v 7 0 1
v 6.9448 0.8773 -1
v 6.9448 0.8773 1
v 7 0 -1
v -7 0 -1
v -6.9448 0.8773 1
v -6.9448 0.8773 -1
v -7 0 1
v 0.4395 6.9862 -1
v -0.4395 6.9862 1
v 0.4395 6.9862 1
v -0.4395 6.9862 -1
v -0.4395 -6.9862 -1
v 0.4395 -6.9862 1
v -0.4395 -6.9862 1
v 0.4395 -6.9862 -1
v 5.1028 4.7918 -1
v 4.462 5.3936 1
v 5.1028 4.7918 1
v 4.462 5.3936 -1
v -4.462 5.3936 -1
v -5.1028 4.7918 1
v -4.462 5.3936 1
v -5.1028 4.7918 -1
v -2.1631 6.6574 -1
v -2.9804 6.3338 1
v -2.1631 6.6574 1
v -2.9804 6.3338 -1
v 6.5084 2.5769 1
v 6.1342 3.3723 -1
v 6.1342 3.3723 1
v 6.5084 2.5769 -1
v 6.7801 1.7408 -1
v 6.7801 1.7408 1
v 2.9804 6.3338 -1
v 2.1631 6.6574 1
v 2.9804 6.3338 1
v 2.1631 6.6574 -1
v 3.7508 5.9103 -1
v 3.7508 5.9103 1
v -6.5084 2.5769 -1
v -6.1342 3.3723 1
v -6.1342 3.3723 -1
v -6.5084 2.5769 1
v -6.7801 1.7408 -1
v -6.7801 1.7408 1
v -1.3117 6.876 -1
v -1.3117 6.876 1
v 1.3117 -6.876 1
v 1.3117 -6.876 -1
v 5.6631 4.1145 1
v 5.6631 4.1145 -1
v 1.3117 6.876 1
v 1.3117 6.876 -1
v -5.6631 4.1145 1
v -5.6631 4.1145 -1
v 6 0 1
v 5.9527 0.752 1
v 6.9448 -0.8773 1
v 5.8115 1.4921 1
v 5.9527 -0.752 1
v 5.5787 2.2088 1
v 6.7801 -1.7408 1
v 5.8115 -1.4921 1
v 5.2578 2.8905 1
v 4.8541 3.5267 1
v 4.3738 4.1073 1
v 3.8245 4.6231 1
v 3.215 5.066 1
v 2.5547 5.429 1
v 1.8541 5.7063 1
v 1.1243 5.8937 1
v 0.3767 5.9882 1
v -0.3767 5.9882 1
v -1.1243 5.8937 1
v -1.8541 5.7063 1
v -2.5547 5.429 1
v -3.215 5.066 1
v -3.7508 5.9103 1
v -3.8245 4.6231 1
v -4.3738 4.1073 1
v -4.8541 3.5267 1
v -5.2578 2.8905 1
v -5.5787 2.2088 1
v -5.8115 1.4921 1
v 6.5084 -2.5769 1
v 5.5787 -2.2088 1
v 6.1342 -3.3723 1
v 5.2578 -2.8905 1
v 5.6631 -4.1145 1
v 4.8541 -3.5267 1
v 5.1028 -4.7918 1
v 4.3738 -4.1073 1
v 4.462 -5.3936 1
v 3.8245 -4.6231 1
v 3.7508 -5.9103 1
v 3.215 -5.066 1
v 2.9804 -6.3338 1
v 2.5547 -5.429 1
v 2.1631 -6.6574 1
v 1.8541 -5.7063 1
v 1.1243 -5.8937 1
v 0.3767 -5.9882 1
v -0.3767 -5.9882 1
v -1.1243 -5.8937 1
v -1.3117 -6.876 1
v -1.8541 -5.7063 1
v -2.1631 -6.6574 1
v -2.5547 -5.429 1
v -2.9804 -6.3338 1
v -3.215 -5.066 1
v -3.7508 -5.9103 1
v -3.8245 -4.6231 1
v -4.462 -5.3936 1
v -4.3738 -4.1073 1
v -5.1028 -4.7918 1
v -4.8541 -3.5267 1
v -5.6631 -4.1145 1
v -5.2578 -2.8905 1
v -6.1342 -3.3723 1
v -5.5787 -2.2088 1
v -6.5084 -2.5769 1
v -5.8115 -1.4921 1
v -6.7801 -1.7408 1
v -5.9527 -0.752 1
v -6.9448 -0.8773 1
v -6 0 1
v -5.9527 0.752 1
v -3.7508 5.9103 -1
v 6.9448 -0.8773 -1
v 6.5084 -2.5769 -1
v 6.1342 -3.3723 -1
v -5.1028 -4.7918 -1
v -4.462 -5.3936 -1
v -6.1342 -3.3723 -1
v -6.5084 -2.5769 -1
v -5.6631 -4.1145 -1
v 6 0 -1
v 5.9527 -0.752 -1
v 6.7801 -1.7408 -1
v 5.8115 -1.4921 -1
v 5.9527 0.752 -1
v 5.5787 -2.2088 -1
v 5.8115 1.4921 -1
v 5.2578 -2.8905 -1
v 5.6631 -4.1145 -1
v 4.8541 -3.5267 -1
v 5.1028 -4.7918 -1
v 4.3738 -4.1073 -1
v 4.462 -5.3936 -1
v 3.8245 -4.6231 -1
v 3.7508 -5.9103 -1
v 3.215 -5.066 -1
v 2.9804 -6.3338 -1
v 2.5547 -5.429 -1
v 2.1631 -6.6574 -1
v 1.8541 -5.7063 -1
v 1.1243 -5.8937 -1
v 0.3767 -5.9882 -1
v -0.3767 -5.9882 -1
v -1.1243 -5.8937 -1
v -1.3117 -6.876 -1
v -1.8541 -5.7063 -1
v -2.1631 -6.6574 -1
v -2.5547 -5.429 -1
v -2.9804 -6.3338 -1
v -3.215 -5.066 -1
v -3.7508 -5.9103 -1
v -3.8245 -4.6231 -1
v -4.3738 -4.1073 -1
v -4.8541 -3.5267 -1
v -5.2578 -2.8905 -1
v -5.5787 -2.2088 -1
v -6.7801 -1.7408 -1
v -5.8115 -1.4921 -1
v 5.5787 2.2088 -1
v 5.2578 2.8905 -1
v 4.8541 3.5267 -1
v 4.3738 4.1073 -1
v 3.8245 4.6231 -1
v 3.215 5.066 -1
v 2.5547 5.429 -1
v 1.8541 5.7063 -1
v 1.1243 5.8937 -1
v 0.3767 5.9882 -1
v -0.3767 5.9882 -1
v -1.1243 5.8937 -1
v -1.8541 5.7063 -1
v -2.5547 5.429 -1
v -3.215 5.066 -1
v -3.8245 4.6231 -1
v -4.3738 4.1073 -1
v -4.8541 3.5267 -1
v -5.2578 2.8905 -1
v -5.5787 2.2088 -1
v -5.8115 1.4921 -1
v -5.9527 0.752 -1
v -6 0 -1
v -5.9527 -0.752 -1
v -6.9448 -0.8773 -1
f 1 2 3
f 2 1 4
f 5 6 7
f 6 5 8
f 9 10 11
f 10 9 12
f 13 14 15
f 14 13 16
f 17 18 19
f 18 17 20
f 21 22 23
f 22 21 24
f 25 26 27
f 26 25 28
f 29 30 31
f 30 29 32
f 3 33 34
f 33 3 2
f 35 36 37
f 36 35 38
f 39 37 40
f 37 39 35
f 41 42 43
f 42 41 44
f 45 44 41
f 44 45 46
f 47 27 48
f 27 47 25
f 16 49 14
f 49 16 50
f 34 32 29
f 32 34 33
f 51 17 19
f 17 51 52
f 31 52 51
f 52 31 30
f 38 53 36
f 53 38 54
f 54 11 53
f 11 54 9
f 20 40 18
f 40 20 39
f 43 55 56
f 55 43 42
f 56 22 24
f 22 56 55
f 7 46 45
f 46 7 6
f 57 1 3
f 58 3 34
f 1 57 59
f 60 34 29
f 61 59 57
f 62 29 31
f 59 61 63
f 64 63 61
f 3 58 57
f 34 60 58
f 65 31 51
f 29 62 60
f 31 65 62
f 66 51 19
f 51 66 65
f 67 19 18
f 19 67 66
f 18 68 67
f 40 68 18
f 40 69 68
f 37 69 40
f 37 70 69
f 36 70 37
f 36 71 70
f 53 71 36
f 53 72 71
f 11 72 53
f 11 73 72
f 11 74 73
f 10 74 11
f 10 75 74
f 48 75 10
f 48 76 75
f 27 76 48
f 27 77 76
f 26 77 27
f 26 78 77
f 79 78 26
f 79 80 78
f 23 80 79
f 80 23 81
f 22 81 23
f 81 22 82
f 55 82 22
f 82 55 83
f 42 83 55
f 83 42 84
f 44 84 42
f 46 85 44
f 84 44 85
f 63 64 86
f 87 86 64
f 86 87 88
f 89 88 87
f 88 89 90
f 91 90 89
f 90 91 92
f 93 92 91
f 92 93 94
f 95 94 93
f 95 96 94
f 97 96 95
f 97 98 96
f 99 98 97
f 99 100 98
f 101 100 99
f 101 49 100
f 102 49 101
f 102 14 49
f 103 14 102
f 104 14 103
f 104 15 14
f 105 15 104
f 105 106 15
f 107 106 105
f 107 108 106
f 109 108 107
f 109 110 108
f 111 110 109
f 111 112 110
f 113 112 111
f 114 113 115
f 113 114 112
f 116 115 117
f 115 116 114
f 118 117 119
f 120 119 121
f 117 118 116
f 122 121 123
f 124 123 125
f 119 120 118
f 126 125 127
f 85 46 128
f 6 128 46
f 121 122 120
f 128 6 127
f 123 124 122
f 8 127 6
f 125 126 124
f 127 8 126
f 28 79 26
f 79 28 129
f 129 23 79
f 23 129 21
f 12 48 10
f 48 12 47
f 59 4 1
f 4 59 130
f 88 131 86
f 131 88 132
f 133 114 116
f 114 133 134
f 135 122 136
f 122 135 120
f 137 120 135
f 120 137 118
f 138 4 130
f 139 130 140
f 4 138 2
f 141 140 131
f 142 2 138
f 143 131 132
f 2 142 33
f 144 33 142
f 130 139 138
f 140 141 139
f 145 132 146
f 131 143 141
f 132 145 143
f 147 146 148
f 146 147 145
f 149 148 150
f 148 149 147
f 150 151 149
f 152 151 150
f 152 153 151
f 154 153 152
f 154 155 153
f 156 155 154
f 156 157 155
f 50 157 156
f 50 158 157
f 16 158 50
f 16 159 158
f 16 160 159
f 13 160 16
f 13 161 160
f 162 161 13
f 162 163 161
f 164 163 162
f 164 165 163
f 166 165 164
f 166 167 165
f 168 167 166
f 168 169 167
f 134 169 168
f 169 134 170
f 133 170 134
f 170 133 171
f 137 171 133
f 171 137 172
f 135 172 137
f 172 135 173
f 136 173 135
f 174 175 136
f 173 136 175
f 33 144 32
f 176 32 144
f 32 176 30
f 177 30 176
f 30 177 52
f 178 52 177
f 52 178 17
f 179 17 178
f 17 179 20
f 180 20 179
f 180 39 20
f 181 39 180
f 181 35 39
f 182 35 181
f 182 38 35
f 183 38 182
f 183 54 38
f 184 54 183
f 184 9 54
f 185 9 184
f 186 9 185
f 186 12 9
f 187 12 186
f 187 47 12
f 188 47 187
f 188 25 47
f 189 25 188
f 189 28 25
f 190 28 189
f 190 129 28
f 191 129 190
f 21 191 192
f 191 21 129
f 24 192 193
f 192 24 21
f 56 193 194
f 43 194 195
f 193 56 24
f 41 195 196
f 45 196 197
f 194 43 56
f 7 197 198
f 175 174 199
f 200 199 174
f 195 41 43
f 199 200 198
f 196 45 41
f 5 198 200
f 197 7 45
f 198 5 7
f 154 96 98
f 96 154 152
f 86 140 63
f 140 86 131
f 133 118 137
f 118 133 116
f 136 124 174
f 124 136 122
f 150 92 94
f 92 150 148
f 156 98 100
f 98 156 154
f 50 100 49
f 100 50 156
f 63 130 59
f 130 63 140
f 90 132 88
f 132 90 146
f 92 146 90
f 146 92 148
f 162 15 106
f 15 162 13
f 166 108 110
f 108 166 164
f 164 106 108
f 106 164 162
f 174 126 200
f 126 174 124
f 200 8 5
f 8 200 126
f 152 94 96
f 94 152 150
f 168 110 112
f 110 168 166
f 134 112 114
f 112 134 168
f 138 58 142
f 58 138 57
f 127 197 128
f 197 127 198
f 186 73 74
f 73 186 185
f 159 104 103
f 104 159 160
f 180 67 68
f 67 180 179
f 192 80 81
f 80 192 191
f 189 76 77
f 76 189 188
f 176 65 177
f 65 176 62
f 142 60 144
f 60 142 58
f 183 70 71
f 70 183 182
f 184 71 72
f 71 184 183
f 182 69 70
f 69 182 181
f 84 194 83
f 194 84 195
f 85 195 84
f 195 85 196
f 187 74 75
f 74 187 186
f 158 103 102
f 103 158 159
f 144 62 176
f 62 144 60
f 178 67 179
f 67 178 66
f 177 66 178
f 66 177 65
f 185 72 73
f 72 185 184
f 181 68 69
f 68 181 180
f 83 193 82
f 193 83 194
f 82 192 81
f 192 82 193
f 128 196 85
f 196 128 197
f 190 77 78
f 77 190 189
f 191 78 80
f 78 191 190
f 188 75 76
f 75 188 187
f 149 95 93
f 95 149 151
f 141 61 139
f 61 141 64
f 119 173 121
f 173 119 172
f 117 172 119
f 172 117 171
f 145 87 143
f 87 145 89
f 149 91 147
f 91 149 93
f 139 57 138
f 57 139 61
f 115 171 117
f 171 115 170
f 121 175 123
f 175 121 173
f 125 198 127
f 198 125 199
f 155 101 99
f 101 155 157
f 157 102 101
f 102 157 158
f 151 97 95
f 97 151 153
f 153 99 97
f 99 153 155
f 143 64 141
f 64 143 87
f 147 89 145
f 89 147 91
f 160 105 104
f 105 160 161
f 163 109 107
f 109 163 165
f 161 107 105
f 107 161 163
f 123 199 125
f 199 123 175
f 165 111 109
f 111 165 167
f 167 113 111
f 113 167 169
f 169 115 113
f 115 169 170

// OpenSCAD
$fn = 50;


difference() {
	union() {
		translate(v = [0, 0, -1.0000000000]) {
			cylinder(h = 2, r = 7.0000000000);
		}
	}
	union() {
		translate(v = [0, 0, -100.0000000000]) {
			cylinder(h = 200, r = 6);
		}
	}
}
